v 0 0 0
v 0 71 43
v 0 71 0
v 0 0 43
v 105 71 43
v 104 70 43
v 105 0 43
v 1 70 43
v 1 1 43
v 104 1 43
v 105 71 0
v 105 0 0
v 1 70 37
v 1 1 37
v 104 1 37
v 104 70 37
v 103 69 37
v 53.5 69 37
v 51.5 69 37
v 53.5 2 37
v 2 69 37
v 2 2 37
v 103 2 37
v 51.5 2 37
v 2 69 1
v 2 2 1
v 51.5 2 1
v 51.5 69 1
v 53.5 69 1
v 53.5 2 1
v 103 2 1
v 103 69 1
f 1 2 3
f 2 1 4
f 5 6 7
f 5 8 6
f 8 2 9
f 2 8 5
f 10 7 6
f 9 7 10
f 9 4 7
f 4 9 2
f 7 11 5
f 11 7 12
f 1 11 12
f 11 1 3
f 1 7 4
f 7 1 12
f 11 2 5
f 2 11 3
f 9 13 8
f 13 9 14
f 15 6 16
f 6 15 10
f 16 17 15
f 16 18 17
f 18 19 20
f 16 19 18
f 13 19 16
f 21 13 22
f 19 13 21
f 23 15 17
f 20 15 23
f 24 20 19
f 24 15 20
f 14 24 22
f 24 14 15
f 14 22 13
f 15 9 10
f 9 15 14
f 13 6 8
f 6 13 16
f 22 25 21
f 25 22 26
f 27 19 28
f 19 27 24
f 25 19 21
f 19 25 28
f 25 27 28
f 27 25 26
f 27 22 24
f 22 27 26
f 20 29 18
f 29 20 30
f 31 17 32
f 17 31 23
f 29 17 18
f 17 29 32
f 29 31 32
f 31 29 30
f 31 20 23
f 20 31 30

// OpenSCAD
$fn=200;

THICK = 1;

STUMP = 3;

BOX_W = 101;
BOX_L = 67;
BOX_H = 36;

difference() {
    cube(size = [
        BOX_W + (THICK * 4),
        BOX_L + (THICK * 4), 
        BOX_H + THICK + 6]);


    translate([
        THICK,
        THICK, 
        BOX_H + THICK]) {
            
        cube(size = [
            BOX_W + (THICK * 2),
            BOX_L + (THICK * 2), 
            BOX_H + THICK + 80]);
    }

    translate([
        THICK * 2, 
        THICK * 2, 
        THICK]) {
            
        cube(size = [
            (BOX_W / 2) - THICK,
            BOX_L,
            BOX_H + 1]);
    }

    translate([
        BOX_W / 2 + THICK * 3, 
        THICK * 2, 
        THICK]) {
            
        cube(size = [
            (BOX_W / 2) - THICK,
            BOX_L,
            BOX_H + 1]);
    }
}
